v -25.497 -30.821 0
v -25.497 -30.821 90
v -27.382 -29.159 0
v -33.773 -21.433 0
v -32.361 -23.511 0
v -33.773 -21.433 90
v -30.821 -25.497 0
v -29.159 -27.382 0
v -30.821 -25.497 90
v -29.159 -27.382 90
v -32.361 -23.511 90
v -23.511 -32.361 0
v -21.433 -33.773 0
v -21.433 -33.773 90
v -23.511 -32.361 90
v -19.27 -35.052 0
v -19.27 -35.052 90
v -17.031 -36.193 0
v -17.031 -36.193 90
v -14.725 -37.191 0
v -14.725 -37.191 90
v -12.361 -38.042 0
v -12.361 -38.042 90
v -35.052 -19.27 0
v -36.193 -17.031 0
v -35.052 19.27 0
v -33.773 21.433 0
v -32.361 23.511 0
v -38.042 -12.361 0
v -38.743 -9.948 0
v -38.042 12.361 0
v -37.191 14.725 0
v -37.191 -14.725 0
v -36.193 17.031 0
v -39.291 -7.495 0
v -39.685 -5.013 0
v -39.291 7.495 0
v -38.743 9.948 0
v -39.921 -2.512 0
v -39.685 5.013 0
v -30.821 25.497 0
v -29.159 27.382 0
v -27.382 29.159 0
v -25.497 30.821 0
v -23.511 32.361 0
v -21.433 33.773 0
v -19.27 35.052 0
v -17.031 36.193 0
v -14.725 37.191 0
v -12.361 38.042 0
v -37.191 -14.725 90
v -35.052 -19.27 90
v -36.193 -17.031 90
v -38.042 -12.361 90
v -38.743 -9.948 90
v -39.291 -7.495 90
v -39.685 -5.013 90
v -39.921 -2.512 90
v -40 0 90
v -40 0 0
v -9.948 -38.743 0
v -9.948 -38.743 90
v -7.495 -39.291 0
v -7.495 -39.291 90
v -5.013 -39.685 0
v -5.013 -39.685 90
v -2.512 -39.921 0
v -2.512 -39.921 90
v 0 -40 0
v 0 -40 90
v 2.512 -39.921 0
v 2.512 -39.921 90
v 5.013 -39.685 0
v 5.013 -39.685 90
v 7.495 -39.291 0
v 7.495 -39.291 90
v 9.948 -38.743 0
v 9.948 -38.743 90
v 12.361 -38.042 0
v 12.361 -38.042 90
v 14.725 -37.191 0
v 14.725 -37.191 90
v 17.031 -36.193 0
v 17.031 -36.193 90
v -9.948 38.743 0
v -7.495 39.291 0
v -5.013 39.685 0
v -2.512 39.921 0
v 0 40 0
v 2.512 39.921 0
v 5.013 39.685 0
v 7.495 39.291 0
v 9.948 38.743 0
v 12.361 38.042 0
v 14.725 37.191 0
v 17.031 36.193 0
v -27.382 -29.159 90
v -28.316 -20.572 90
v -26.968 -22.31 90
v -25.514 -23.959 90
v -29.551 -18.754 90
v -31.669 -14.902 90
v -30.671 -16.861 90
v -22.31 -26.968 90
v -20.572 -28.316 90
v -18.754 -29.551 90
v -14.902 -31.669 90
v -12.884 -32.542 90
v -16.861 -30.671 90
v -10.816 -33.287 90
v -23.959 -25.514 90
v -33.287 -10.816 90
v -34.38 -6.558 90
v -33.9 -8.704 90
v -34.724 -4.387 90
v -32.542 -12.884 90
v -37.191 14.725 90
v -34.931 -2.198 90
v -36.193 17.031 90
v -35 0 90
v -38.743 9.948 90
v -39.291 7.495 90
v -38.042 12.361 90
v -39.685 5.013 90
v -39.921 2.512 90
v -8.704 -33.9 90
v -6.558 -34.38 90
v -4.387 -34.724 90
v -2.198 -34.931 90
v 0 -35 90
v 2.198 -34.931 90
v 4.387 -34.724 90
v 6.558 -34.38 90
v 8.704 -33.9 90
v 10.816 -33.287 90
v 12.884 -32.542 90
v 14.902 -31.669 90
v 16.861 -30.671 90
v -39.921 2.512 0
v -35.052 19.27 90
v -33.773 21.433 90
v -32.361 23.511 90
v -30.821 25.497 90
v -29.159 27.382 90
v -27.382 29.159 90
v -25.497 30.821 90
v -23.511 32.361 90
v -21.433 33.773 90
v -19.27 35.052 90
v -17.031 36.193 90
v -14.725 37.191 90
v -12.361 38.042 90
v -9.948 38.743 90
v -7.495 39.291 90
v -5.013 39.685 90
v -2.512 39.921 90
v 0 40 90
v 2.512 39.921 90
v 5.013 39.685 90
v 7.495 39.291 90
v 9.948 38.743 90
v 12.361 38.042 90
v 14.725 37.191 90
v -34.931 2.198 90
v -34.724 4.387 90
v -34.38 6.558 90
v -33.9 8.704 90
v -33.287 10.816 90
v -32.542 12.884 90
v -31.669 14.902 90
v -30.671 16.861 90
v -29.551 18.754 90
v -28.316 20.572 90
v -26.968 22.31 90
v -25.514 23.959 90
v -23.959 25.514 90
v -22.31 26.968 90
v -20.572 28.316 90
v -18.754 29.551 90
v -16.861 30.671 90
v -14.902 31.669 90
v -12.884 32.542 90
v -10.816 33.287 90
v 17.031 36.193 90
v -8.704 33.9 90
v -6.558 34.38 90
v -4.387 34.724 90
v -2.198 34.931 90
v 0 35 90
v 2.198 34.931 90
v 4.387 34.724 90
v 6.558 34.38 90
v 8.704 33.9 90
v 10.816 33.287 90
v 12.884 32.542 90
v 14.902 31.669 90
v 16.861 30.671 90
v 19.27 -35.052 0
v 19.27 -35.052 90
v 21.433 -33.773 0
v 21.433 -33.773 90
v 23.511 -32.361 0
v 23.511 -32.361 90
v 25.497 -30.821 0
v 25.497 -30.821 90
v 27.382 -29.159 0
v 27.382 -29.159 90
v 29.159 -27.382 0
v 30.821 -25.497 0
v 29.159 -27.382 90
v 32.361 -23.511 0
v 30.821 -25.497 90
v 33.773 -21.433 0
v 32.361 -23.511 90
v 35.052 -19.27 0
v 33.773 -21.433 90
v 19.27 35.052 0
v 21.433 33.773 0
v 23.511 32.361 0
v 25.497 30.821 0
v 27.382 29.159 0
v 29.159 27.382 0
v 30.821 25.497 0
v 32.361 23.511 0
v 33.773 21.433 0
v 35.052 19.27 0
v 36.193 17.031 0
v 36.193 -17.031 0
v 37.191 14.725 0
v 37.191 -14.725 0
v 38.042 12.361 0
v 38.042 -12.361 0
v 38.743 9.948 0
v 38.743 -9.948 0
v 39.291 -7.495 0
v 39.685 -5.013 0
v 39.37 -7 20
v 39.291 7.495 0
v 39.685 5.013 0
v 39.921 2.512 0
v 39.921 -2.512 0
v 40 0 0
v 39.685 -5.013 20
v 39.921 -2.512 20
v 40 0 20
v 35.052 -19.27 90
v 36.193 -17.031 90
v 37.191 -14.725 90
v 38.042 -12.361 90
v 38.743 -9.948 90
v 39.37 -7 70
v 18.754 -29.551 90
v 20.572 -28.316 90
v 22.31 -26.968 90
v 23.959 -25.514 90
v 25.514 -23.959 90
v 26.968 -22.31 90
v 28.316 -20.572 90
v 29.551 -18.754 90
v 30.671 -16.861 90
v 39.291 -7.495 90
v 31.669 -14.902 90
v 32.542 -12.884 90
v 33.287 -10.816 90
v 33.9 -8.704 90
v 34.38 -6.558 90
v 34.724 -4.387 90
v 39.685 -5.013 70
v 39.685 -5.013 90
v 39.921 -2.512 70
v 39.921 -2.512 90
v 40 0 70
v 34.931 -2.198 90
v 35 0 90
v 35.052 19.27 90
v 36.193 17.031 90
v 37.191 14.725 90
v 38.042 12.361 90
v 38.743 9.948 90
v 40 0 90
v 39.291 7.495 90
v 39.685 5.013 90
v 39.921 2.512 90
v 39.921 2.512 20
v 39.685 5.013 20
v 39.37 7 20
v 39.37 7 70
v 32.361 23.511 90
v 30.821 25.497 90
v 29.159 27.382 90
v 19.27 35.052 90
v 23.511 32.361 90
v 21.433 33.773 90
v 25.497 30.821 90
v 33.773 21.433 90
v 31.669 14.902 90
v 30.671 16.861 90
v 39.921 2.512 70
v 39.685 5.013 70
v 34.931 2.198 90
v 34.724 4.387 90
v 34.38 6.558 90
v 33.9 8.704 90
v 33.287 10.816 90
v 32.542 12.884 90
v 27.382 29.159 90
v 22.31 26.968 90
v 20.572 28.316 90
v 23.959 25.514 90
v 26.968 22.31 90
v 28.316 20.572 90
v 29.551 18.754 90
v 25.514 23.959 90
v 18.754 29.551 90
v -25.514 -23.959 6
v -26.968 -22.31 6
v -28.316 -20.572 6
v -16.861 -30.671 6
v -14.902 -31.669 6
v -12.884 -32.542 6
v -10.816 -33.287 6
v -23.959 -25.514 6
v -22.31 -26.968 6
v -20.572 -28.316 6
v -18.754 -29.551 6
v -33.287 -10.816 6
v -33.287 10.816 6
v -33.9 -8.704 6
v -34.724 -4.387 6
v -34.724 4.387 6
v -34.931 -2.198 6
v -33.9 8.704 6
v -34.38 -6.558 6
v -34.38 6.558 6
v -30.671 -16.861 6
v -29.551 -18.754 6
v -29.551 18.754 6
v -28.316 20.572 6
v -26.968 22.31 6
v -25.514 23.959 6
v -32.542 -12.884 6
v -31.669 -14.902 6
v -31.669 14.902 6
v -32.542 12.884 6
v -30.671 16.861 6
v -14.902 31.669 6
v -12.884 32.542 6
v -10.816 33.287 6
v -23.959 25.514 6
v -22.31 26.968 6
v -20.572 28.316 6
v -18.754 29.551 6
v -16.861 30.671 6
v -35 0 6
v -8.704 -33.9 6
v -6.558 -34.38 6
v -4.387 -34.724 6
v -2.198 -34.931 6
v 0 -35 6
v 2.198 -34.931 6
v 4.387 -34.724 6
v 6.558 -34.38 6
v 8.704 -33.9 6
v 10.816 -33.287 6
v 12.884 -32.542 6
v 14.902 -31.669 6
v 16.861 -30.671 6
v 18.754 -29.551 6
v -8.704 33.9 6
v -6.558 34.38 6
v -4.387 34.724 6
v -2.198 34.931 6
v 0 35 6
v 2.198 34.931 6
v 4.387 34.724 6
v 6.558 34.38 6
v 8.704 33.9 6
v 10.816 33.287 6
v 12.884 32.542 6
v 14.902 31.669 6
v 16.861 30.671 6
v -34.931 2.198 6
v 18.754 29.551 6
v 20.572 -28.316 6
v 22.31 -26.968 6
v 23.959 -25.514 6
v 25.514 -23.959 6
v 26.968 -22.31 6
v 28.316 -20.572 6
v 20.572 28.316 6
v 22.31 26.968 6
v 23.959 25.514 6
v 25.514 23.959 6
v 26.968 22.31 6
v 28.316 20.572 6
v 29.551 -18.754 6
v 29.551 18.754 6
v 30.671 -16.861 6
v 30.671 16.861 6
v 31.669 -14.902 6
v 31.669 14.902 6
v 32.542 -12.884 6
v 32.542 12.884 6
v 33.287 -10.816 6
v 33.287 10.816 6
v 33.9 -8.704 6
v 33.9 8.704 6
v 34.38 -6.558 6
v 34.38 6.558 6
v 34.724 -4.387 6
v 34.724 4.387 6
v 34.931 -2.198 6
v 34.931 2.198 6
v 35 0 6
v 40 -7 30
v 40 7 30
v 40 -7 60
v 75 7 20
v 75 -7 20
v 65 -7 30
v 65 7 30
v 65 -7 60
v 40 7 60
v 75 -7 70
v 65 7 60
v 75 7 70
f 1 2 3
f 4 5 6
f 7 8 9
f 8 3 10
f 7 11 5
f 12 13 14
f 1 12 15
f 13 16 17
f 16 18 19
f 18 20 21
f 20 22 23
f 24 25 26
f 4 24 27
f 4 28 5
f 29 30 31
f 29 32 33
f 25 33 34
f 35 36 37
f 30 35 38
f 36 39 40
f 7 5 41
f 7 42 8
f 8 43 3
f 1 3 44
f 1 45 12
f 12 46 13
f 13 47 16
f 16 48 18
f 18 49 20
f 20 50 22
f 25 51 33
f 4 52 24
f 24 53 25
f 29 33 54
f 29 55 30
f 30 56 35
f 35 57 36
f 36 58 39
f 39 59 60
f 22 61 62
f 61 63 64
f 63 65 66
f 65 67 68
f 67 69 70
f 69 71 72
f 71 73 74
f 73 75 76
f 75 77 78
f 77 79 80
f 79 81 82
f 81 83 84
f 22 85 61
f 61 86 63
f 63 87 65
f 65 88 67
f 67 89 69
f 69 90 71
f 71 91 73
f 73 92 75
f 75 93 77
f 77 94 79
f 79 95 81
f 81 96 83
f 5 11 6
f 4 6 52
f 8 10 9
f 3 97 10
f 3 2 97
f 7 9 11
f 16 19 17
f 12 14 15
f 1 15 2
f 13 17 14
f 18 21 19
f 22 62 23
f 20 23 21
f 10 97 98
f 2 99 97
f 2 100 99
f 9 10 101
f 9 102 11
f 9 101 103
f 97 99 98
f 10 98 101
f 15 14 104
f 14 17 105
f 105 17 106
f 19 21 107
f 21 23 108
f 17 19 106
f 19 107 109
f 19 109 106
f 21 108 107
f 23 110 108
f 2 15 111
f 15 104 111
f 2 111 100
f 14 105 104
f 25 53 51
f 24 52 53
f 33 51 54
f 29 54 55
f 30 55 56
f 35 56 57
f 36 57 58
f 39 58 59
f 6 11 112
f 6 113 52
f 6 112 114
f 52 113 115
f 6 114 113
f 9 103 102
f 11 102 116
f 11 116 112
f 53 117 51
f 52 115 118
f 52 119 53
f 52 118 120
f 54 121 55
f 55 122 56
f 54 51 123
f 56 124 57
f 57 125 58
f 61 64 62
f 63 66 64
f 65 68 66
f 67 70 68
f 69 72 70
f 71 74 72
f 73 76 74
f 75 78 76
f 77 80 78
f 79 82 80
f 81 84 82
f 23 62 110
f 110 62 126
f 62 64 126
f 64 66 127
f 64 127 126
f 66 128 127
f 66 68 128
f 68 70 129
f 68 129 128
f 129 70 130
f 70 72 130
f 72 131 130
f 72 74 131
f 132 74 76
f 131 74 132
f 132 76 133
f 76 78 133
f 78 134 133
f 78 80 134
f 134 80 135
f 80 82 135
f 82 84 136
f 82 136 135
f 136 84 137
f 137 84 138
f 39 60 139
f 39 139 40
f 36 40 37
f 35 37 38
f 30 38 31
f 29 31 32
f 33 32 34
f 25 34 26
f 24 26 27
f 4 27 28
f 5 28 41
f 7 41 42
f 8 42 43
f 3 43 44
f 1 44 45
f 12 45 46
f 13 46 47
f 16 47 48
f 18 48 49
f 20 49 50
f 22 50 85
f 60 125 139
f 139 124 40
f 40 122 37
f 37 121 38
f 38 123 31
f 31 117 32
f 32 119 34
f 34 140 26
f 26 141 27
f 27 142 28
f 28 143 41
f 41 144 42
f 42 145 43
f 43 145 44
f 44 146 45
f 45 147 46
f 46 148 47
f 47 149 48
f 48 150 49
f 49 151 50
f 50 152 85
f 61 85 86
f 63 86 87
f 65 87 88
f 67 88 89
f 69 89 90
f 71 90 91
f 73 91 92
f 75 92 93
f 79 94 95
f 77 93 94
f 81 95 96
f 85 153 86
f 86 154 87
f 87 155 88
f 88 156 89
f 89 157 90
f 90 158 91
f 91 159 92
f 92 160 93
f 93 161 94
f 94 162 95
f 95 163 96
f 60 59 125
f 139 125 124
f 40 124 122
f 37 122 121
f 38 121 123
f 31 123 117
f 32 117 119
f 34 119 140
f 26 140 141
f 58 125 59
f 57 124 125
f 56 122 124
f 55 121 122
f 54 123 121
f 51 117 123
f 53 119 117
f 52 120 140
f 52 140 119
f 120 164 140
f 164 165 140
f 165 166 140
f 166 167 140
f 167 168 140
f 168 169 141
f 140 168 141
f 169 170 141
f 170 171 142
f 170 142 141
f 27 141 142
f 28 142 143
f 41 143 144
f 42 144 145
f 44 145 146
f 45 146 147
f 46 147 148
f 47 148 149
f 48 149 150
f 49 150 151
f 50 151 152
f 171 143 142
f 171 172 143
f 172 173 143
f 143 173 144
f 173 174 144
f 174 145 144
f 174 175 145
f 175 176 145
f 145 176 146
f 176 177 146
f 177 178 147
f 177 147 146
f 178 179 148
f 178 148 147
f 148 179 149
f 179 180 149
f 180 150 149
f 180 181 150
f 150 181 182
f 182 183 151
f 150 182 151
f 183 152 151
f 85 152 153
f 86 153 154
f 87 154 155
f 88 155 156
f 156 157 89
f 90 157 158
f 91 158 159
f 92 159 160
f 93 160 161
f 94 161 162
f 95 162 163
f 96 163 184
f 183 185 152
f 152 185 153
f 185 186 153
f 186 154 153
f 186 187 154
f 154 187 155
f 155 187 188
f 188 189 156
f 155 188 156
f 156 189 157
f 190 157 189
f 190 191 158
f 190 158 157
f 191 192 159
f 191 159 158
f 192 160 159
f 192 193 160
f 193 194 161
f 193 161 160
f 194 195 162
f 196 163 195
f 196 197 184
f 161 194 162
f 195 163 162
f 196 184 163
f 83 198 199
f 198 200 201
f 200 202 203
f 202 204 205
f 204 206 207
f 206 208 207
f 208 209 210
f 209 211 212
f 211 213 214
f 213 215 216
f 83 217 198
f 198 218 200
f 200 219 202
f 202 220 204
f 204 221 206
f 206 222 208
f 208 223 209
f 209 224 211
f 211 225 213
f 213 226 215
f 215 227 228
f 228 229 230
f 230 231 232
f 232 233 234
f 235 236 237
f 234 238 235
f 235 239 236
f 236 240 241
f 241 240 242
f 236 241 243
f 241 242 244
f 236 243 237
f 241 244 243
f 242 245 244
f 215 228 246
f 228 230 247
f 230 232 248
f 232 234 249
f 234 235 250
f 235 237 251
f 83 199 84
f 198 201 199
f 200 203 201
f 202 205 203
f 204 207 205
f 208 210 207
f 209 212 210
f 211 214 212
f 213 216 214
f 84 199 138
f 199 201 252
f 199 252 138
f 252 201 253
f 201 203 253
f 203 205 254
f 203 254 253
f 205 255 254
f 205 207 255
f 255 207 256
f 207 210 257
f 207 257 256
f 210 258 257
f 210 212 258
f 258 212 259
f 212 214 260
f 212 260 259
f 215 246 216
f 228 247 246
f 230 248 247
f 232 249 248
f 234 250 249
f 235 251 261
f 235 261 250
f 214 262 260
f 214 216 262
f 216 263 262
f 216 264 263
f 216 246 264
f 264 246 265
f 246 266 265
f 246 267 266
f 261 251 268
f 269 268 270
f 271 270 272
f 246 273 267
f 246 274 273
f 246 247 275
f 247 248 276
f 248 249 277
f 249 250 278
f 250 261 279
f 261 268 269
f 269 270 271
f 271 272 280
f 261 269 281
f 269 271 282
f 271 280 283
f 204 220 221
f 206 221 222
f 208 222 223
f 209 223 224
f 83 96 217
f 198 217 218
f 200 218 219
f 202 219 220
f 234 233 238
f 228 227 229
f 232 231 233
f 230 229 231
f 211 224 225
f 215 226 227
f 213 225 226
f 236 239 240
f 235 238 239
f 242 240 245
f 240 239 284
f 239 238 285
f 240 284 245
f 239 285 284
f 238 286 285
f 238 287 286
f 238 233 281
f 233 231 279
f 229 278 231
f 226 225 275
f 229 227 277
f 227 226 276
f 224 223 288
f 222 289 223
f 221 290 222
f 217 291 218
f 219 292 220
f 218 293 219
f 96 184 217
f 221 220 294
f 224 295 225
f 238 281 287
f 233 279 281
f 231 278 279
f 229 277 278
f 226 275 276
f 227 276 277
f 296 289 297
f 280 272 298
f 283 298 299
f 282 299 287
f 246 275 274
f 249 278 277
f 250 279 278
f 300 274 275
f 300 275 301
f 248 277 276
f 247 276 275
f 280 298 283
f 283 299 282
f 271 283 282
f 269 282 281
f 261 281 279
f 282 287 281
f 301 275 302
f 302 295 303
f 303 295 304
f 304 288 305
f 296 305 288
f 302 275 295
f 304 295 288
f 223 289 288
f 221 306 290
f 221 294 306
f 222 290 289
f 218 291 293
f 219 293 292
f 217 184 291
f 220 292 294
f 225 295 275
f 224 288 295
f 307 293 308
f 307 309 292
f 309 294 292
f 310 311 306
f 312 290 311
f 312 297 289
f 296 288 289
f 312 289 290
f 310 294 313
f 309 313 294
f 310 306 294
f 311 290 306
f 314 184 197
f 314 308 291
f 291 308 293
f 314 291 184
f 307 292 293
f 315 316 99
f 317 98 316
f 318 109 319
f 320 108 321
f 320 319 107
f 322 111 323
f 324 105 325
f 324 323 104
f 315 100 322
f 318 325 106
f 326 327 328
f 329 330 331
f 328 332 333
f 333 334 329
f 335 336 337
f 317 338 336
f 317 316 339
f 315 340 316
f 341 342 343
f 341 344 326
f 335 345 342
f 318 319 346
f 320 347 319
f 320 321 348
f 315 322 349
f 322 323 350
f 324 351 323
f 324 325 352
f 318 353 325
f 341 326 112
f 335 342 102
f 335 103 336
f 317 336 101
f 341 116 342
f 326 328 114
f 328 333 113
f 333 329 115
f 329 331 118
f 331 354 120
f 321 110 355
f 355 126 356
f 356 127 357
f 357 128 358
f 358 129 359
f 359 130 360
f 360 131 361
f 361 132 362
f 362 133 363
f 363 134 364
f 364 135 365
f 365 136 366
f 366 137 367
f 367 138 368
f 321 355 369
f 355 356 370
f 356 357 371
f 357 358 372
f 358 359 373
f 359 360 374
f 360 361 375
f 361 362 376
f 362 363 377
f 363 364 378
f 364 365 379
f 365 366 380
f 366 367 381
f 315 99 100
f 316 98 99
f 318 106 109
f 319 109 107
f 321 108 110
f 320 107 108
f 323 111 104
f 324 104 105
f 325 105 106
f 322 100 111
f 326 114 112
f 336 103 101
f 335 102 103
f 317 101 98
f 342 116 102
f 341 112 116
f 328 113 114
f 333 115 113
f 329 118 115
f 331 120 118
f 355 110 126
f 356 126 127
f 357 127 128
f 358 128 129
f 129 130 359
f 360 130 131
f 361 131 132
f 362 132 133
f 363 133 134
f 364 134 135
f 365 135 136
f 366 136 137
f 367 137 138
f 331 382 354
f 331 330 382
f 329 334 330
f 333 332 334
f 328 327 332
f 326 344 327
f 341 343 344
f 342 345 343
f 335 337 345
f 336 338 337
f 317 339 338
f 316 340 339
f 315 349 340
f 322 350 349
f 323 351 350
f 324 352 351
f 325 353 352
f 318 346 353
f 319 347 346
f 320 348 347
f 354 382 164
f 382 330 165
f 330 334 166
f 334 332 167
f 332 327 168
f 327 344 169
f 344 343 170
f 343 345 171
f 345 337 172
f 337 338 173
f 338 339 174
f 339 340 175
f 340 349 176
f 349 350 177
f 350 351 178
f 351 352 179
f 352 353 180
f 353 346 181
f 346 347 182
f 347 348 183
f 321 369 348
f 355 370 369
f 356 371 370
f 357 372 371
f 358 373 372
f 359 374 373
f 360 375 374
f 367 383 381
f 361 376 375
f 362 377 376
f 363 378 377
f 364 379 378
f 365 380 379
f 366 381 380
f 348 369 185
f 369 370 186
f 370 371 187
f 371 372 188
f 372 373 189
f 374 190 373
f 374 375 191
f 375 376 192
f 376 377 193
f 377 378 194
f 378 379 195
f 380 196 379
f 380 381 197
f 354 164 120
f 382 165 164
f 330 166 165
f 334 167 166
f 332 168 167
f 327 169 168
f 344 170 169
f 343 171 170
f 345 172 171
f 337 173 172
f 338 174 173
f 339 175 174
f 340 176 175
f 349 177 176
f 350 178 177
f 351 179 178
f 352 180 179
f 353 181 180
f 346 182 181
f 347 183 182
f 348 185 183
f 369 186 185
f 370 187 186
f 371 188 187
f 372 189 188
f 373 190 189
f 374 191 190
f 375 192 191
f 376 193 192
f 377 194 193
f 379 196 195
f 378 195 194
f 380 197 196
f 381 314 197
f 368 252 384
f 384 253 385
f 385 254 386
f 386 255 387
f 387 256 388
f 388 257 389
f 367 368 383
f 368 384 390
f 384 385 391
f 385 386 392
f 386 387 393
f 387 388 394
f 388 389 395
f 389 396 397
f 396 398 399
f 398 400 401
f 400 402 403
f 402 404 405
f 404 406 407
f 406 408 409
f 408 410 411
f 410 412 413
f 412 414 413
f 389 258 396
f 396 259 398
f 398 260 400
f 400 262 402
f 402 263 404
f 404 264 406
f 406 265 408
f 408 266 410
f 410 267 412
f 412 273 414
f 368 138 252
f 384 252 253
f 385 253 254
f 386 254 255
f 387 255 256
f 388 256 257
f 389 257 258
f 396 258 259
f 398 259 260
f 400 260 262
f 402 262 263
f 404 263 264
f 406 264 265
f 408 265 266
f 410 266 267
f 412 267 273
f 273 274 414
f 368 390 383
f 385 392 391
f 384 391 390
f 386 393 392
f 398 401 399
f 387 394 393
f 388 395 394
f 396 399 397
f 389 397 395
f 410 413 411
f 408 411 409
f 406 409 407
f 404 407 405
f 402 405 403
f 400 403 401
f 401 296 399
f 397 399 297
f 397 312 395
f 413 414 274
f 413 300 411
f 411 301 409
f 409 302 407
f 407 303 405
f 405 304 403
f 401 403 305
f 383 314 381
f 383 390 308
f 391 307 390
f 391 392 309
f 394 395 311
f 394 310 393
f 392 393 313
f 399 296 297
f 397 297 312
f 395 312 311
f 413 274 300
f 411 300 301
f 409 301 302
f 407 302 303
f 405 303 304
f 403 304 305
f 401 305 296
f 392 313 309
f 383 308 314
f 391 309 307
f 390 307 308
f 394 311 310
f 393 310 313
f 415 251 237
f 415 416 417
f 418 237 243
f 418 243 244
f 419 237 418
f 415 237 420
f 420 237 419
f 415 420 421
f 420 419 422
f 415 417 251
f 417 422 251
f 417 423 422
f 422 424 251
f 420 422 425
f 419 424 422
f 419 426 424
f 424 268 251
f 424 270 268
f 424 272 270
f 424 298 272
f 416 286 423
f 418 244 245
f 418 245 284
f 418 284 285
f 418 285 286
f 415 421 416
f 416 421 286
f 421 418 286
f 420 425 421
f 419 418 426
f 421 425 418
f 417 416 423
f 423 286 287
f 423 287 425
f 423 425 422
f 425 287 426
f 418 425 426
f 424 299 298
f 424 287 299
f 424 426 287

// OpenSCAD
// ============================================
// 向き指定マグカップ (+X方向に取手)
// ============================================
$fn = 100;

// ---- 本体パラメータ ----
mug_or   = 40;   // 外径半径 (外径80mm)
mug_ir   = 35;   // 内径半径 (内径70mm, 肉厚5mm)
mug_h    = 90;   // 高さ
bottom_t = 6;    // 底面厚み

// ---- 取手パラメータ ----
handle_center_z   = mug_h / 2; // 取手の高さ方向中心 (45mm付近)
gap_h             = 30;  // 指入れ空間: 高さ
gap_w             = 25;  // 指入れ空間: 幅(本体表面からの奥行)
wall_t            = 10;  // 取手の肉厚(穴周囲)
embed             = 5;   // 本体壁への埋め込み量(壁厚5mm以内に収める)
handle_thickness  = 14;  // 取手の厚み(Y方向)

// D字形状(平坦な左辺 + 半円の右端)を作る2Dプロファイル
module d_profile(flat_x, width, height, center_z) {
    r = height / 2;
    x_mid = flat_x + width - r;
    difference() {
        union() {
            translate([flat_x, center_z - height/2])
                square([width, height]);
            translate([x_mid, center_z])
                circle(r = r);
        }
        // flat_x より左側を確実に切り落とし、平坦面を保証する
        translate([flat_x - 1000, center_z - 1000])
            square([1000, 2000]);
    }
}

// マグ本体(中空の円筒)
module mug_body() {
    difference() {
        cylinder(h = mug_h, r = mug_or);
        translate([0, 0, bottom_t])
            cylinder(h = mug_h - bottom_t + 1, r = mug_ir);
    }
}

// 取手(D字形、+X方向のみに配置)
module handle() {
    outer_flat_x = mug_or - embed;              // 本体壁内部まで埋め込む
    outer_width  = embed + gap_w + wall_t;      // 外側先端までの幅
    outer_height = gap_h + 2 * wall_t;          // 上下の肉厚を含む高さ

    hole_flat_x = mug_or;   // 穴は本体外周面から開始
    hole_width  = gap_w;
    hole_height = gap_h;

    translate([0, handle_thickness/2, 0])
    rotate([90, 0, 0])
    linear_extrude(height = handle_thickness)
        difference() {
            d_profile(outer_flat_x, outer_width, outer_height, handle_center_z);
            d_profile(hole_flat_x,  hole_width,  hole_height,  handle_center_z);
        }
}

// ---- 最終出力 ----
union() {
    mug_body();
    handle();
}
